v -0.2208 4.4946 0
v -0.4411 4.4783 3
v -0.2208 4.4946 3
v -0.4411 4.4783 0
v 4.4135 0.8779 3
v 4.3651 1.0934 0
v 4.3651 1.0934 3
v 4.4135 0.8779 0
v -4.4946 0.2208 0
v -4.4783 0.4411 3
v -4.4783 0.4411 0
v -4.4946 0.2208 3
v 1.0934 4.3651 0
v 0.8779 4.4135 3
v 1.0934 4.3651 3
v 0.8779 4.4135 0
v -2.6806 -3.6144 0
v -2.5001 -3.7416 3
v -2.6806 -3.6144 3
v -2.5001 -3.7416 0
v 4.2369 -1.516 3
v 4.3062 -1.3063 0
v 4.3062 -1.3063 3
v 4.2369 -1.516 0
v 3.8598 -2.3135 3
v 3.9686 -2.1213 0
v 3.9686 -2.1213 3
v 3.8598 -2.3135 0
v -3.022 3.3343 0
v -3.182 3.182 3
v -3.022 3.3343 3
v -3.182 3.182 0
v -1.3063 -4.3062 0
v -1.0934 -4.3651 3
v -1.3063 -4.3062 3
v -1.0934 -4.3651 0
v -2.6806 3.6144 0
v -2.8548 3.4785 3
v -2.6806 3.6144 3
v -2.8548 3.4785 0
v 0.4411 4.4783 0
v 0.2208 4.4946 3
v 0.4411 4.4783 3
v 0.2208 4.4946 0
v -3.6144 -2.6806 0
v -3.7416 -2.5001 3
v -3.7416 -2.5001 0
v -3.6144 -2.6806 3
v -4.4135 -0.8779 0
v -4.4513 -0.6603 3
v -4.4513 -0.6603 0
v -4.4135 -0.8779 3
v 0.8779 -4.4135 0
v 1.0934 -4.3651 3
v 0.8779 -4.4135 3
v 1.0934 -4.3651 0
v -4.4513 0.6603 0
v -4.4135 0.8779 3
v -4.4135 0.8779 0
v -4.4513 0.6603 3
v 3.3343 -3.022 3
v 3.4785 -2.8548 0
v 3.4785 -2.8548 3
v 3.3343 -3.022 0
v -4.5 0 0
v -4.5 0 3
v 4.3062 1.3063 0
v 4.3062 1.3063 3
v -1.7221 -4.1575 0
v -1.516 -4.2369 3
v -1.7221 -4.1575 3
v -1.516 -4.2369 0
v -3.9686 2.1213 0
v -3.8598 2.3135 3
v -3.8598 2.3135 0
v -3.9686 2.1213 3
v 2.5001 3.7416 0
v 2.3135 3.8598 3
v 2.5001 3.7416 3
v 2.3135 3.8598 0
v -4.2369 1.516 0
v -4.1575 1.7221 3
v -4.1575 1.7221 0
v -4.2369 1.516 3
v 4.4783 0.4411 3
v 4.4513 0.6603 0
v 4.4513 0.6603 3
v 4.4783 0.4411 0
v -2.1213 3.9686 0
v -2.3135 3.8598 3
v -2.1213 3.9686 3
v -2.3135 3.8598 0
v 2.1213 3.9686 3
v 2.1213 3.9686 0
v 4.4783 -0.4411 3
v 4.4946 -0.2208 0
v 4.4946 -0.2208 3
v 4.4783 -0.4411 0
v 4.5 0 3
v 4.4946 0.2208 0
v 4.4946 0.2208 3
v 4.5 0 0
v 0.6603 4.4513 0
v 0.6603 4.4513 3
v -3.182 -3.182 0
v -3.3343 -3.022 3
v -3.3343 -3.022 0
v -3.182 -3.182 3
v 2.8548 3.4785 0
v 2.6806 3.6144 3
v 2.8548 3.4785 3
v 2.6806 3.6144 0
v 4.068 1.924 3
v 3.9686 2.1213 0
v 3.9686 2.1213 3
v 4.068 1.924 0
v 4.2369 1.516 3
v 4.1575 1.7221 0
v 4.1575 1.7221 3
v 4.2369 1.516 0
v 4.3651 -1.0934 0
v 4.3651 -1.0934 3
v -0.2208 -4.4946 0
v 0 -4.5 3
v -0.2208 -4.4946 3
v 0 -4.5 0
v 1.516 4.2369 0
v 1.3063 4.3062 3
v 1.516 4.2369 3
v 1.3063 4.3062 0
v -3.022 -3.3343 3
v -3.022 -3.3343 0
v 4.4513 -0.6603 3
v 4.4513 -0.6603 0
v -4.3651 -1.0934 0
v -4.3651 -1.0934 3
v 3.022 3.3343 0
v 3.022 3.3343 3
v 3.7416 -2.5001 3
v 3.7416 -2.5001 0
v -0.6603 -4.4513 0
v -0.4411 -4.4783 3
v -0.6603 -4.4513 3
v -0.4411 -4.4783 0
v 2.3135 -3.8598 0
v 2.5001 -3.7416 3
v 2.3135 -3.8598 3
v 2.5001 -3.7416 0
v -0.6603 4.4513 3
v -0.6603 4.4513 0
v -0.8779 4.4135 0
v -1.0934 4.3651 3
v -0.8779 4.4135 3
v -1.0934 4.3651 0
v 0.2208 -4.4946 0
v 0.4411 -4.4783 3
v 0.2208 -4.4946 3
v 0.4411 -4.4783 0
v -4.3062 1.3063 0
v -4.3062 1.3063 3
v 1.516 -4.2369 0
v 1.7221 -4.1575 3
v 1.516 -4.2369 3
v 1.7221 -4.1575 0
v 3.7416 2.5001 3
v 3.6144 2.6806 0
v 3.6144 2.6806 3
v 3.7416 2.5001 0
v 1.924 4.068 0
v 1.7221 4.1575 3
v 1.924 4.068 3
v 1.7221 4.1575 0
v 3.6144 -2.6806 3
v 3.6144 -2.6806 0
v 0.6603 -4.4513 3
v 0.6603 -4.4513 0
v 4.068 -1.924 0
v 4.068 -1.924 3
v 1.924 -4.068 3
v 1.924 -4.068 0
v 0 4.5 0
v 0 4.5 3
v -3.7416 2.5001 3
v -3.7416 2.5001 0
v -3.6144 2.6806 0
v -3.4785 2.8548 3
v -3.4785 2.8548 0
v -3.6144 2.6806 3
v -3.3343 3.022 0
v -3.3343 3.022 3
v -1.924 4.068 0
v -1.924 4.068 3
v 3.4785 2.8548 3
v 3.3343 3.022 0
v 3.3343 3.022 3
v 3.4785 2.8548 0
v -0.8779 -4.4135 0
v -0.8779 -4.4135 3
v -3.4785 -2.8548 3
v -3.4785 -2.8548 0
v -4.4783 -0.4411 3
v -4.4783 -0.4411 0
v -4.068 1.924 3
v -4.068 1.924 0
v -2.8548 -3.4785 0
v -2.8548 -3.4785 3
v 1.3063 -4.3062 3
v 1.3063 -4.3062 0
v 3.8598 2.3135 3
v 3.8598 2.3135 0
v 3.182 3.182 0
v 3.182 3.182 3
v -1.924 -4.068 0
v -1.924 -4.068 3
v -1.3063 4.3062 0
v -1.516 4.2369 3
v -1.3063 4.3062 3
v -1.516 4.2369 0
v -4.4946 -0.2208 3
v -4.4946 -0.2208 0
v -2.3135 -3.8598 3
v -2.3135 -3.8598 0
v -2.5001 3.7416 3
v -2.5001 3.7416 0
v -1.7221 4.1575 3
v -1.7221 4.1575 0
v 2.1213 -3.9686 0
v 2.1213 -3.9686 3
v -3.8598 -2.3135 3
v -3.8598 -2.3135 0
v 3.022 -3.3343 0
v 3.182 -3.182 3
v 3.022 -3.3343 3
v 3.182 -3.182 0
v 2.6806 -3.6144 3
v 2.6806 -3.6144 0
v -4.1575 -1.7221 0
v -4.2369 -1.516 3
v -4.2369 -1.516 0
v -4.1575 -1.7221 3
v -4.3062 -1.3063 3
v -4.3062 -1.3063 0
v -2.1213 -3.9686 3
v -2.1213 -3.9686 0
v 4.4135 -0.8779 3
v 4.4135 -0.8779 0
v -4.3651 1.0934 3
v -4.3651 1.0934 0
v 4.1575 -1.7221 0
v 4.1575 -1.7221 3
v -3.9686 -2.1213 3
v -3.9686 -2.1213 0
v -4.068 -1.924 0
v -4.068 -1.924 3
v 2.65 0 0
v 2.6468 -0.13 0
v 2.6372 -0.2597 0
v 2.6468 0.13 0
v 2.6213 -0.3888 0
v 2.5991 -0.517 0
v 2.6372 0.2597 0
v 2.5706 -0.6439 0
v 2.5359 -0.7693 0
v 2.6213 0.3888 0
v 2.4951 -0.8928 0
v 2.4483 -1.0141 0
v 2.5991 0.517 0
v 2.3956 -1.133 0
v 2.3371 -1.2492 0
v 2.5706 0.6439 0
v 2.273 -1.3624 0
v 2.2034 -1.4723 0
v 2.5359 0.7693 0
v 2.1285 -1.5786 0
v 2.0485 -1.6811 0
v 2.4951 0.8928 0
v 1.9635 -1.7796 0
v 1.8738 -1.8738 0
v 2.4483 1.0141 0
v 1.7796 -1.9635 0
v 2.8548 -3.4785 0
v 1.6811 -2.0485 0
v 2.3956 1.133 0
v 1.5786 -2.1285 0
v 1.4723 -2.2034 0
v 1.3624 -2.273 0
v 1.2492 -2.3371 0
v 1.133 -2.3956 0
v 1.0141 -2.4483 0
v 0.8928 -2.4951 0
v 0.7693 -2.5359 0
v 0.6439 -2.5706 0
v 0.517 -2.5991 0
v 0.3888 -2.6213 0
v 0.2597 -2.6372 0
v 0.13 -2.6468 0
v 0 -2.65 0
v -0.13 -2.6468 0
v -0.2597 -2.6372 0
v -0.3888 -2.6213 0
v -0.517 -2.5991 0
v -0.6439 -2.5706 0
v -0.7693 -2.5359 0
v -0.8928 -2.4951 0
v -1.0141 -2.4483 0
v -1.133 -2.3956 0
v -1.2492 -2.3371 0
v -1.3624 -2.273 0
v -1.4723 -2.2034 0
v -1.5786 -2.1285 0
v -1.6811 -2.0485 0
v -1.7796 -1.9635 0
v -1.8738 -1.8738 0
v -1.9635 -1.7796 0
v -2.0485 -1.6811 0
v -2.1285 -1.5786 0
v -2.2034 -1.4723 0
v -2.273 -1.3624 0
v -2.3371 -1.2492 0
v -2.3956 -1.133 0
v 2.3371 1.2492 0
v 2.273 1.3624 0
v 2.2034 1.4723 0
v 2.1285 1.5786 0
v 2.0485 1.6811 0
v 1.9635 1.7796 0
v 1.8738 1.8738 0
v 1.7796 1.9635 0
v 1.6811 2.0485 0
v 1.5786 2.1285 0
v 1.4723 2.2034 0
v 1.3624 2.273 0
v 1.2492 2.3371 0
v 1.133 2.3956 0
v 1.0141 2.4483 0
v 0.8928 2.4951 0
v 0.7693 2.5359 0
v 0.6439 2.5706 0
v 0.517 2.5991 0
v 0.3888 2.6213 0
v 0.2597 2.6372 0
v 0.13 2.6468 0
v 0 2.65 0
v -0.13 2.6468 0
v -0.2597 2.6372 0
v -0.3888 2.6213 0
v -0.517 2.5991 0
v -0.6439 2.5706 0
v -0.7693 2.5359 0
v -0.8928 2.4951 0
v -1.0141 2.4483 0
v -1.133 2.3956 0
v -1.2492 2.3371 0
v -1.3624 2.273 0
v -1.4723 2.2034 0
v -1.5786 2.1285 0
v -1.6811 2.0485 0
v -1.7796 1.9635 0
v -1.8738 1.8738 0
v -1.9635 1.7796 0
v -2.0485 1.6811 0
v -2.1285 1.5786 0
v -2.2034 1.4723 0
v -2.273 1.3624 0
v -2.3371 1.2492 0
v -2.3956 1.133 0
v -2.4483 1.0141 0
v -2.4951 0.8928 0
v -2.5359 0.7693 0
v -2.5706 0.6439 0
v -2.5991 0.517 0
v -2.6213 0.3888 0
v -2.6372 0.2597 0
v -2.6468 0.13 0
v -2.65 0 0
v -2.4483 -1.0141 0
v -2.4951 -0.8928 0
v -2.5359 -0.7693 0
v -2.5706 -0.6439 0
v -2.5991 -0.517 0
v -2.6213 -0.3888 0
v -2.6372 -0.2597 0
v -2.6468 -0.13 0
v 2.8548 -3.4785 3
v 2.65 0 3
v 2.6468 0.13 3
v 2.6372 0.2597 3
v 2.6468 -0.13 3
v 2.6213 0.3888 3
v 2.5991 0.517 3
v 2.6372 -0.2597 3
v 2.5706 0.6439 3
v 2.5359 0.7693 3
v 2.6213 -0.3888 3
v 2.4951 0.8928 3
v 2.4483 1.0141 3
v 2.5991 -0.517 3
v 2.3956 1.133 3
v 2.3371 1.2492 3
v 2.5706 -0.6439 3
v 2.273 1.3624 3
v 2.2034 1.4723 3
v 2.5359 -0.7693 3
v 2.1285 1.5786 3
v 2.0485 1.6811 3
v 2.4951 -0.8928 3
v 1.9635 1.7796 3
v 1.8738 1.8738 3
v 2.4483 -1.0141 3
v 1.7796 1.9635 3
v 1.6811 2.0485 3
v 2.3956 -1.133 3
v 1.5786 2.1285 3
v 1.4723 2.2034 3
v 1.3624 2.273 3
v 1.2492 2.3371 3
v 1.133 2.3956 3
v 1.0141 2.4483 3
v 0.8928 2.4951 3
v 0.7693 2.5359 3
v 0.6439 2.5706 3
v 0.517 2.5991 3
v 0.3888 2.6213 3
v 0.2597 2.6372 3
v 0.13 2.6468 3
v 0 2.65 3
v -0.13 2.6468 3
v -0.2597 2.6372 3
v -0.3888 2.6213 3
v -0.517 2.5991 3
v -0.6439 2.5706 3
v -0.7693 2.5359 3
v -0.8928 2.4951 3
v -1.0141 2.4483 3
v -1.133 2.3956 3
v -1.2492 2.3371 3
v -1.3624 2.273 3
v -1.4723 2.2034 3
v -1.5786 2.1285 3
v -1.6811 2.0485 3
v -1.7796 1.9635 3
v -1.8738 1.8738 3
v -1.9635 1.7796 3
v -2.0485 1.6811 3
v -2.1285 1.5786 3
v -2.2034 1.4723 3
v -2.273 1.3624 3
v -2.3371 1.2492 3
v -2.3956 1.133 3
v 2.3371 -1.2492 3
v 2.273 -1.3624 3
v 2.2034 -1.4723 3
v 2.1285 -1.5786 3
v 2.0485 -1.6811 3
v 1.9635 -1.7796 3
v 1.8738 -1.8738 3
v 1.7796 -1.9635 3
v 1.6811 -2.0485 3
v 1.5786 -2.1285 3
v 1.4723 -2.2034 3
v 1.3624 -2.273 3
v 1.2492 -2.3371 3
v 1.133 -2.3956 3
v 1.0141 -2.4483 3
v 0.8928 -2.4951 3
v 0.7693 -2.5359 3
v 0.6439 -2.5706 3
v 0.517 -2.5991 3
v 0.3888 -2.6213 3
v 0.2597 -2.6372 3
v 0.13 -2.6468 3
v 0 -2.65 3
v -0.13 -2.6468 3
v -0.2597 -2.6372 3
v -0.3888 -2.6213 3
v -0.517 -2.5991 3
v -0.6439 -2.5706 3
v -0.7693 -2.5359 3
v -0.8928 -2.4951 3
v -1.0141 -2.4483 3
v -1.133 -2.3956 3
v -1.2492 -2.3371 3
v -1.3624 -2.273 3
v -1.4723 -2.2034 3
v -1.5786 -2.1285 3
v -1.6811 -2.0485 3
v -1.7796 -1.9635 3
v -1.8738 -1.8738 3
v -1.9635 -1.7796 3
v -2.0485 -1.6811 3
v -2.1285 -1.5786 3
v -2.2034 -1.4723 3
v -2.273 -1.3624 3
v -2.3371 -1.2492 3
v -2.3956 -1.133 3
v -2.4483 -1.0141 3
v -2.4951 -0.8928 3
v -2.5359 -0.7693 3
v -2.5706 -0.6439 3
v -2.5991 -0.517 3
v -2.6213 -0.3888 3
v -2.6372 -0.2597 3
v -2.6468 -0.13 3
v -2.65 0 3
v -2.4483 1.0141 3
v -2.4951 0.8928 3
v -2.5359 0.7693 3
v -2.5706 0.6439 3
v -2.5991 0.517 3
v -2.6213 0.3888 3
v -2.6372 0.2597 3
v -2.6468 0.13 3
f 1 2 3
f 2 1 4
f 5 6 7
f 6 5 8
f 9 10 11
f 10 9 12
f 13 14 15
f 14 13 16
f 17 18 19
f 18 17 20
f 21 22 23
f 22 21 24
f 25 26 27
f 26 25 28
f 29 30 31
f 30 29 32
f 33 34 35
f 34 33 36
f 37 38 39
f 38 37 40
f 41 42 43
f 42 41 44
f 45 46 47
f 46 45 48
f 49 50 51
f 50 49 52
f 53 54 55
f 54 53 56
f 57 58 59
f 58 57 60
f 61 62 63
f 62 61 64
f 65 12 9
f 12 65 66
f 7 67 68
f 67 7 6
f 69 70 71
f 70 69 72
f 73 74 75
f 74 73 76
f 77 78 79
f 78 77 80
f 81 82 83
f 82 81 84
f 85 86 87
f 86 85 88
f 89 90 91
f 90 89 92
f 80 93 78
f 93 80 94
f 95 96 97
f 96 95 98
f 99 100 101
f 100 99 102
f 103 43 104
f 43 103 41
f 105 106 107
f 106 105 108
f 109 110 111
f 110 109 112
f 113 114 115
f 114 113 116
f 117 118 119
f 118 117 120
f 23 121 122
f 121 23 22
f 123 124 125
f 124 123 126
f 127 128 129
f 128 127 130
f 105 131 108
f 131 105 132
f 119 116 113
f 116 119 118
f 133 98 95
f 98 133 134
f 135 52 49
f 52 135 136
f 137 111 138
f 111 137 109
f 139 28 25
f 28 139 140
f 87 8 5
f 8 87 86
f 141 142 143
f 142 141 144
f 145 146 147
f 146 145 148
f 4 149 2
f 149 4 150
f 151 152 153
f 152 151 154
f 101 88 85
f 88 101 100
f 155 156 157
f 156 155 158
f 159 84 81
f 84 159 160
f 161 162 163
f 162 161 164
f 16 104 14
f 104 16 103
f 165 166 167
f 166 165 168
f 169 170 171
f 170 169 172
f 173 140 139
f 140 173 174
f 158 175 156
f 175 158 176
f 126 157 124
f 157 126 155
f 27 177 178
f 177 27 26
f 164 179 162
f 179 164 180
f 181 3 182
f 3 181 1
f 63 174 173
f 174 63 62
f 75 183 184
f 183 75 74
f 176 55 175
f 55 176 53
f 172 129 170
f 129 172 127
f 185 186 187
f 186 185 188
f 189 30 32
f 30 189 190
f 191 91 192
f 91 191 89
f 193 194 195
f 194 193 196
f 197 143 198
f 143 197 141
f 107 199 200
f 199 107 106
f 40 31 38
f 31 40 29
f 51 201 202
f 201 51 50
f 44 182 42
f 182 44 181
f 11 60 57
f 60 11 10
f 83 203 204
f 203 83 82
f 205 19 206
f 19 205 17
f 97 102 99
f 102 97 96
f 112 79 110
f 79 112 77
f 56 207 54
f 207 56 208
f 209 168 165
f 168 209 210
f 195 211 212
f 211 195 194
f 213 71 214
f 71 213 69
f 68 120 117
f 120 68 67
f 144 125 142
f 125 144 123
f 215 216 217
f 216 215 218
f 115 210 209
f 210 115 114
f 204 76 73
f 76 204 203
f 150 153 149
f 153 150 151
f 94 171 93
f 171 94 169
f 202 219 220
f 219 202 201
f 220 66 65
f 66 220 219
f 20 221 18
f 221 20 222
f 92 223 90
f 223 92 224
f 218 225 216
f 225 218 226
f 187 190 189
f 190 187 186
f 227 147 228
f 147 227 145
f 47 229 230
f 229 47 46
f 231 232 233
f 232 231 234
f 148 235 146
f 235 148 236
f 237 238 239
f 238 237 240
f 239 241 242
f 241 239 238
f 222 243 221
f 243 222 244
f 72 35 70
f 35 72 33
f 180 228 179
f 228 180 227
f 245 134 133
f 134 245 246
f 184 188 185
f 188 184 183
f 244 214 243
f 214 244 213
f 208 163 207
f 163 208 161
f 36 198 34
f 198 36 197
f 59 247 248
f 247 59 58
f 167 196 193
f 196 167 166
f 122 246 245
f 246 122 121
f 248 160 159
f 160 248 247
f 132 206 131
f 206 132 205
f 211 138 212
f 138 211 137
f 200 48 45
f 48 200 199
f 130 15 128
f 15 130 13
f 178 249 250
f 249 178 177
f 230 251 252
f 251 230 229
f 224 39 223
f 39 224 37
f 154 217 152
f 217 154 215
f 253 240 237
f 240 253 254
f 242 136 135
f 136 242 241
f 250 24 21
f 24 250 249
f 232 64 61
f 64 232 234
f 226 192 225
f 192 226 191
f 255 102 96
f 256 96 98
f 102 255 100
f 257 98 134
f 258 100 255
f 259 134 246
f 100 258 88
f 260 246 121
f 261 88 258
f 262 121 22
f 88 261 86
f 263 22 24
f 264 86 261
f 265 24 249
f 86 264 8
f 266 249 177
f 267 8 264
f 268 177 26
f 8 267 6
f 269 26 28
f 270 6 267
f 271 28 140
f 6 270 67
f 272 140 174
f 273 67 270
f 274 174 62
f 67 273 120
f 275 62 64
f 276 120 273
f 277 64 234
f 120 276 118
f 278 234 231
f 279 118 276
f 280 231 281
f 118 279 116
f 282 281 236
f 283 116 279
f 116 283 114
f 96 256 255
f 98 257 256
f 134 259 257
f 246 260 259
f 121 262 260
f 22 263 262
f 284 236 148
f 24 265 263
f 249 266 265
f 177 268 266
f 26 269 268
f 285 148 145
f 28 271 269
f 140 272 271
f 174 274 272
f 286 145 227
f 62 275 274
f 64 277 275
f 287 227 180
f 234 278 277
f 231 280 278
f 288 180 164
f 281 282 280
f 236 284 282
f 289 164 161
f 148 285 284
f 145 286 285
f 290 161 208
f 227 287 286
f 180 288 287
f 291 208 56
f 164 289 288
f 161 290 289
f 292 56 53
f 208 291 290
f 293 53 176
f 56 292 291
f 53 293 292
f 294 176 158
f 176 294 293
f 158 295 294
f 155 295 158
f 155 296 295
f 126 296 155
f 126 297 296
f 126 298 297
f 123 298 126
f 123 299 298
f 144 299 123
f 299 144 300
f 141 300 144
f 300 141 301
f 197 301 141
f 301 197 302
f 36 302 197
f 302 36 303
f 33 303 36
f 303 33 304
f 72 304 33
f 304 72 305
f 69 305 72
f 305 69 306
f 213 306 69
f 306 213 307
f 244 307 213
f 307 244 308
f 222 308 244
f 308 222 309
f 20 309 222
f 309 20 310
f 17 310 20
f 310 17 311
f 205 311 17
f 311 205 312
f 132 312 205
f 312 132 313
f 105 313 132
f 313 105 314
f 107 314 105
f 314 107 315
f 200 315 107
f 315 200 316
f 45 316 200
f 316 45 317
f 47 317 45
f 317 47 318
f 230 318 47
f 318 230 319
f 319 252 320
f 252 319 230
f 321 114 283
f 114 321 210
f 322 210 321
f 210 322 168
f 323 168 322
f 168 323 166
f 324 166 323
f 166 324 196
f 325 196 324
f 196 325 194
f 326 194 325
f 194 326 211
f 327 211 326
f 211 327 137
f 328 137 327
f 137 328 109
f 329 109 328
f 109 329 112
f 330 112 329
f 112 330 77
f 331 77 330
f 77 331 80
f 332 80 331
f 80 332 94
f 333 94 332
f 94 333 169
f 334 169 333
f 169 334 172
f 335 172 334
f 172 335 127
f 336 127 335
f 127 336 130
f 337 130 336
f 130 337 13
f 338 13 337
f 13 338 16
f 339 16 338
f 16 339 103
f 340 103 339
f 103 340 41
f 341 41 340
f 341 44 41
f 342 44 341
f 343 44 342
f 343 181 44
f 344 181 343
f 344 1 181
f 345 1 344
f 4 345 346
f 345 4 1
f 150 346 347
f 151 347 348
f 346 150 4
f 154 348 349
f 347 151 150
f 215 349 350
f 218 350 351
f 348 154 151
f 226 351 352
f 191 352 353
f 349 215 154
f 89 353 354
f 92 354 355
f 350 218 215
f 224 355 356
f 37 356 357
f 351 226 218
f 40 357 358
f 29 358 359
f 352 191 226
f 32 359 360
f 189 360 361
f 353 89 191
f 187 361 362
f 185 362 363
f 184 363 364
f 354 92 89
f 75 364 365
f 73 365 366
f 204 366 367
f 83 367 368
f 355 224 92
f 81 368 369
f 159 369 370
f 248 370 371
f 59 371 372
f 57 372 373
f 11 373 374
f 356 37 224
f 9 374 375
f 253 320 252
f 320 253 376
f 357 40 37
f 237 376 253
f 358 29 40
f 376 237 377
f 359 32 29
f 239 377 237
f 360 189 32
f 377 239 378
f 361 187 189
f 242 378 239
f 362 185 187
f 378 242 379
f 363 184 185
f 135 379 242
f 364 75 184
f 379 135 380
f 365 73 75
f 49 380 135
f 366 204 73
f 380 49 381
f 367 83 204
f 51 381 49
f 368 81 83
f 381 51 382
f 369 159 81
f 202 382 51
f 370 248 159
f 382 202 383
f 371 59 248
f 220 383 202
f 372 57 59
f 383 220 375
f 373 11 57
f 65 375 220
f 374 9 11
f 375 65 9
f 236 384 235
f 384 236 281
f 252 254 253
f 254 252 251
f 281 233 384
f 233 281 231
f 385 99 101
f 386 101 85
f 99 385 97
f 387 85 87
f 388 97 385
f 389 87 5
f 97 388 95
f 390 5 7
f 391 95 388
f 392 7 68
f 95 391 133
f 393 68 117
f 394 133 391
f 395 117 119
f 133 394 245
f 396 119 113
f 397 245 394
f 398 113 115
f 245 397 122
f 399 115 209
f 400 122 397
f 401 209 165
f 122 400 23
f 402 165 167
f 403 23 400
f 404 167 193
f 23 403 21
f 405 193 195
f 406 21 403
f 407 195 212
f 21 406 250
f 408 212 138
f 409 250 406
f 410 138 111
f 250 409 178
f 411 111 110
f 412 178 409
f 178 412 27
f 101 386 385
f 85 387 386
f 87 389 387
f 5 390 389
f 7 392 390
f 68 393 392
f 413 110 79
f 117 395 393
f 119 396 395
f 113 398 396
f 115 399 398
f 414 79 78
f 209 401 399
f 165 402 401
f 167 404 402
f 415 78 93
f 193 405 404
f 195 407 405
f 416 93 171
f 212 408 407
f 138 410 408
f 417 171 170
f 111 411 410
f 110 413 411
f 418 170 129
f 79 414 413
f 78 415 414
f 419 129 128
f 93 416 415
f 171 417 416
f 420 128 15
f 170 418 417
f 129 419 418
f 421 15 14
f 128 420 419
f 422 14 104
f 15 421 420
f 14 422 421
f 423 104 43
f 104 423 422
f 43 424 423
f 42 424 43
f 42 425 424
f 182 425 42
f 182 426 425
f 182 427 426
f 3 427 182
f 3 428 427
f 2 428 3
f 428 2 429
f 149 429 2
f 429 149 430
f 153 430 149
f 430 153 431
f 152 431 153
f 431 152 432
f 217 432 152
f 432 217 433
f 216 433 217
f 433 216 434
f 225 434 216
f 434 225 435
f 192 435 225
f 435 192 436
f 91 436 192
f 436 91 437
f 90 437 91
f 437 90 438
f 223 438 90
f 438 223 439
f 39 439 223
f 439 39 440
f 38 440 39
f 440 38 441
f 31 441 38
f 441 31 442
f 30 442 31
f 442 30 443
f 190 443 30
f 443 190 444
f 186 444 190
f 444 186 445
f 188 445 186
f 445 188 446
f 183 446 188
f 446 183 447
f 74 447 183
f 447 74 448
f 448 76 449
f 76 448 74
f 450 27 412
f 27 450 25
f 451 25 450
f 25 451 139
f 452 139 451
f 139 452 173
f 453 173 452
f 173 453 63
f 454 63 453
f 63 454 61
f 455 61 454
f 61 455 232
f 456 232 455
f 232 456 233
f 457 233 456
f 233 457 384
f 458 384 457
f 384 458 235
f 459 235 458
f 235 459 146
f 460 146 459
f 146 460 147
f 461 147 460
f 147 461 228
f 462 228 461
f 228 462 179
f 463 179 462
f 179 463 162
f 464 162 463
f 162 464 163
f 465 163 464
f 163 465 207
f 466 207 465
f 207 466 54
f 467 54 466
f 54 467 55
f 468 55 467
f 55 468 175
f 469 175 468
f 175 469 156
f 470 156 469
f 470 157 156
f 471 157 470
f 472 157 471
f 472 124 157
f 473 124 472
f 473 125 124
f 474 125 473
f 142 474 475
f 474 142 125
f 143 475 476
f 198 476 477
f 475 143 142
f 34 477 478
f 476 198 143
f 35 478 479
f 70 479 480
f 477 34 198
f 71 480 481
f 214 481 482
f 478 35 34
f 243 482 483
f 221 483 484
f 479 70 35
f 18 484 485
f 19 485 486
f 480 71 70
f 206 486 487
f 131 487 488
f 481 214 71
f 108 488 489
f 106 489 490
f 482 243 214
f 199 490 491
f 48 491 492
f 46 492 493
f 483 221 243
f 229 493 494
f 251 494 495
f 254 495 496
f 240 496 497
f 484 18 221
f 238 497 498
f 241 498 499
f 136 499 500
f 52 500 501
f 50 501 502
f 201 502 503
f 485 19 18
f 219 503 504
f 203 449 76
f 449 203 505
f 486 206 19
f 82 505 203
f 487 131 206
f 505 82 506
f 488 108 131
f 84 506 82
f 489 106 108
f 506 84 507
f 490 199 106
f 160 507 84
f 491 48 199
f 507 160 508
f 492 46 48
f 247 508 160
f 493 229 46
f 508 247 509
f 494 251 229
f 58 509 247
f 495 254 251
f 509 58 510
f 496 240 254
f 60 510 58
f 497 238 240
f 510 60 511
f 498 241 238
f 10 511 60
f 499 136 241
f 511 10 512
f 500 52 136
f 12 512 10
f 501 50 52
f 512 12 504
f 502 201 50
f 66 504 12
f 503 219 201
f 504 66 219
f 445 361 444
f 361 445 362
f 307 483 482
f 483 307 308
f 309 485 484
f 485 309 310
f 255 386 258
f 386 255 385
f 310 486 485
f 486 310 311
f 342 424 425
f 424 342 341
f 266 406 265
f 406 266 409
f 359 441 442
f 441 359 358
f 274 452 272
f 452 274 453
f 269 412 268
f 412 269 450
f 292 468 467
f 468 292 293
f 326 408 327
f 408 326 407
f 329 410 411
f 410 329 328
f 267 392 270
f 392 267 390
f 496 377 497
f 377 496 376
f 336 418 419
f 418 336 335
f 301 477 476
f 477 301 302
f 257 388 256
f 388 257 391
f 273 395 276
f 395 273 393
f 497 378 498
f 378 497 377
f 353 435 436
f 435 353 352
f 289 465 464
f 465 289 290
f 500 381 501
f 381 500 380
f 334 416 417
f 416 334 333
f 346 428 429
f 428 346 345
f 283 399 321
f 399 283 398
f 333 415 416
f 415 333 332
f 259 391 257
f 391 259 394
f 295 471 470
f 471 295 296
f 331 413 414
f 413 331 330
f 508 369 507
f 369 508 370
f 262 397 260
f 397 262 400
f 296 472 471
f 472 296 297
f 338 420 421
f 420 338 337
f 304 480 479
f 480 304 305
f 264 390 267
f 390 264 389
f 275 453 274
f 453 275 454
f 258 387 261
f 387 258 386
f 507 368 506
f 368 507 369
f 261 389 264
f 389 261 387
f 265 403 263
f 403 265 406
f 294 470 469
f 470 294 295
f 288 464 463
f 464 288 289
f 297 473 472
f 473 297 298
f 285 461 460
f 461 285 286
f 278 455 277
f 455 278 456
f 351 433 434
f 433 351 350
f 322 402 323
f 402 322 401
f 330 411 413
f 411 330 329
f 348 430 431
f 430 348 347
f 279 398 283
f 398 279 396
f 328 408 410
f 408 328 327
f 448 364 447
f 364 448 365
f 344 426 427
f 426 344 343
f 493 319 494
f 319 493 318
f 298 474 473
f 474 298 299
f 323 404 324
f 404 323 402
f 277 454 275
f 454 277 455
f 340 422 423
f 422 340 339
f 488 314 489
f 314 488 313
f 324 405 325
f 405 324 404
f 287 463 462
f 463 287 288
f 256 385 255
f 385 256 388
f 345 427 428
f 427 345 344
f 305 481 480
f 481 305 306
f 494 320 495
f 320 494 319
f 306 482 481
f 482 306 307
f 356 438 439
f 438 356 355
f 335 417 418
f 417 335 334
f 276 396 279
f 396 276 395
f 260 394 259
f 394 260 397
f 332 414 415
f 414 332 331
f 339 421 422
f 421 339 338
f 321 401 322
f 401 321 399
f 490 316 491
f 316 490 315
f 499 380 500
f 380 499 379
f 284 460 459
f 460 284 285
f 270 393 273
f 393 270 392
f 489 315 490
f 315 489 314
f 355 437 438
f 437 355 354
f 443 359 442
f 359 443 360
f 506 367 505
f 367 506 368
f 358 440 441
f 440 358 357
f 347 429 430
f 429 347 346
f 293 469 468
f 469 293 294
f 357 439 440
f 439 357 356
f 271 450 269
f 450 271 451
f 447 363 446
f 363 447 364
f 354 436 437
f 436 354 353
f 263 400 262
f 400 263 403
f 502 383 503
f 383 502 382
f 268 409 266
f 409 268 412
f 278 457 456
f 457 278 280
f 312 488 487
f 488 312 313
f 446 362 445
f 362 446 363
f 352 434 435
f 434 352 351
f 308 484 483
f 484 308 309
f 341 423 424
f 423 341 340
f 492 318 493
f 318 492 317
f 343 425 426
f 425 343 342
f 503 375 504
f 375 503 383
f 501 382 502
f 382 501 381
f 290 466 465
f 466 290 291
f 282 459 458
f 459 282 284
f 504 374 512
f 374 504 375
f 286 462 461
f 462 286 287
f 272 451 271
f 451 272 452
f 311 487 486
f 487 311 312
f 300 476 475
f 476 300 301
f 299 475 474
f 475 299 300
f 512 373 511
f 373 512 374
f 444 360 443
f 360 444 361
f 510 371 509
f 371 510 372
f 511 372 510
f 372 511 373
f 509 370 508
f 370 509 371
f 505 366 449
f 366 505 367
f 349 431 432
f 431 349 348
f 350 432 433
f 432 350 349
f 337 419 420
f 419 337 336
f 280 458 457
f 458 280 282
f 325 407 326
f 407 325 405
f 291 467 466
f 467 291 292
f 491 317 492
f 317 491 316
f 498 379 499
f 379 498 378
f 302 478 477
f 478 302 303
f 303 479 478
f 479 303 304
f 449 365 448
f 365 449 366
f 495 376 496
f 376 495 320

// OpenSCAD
$fn = 128;

difference() {
    cylinder(r=4.5, h=3);
    translate([0,0,-0.01])
        cylinder(r=2.65, h=3.02);
}
